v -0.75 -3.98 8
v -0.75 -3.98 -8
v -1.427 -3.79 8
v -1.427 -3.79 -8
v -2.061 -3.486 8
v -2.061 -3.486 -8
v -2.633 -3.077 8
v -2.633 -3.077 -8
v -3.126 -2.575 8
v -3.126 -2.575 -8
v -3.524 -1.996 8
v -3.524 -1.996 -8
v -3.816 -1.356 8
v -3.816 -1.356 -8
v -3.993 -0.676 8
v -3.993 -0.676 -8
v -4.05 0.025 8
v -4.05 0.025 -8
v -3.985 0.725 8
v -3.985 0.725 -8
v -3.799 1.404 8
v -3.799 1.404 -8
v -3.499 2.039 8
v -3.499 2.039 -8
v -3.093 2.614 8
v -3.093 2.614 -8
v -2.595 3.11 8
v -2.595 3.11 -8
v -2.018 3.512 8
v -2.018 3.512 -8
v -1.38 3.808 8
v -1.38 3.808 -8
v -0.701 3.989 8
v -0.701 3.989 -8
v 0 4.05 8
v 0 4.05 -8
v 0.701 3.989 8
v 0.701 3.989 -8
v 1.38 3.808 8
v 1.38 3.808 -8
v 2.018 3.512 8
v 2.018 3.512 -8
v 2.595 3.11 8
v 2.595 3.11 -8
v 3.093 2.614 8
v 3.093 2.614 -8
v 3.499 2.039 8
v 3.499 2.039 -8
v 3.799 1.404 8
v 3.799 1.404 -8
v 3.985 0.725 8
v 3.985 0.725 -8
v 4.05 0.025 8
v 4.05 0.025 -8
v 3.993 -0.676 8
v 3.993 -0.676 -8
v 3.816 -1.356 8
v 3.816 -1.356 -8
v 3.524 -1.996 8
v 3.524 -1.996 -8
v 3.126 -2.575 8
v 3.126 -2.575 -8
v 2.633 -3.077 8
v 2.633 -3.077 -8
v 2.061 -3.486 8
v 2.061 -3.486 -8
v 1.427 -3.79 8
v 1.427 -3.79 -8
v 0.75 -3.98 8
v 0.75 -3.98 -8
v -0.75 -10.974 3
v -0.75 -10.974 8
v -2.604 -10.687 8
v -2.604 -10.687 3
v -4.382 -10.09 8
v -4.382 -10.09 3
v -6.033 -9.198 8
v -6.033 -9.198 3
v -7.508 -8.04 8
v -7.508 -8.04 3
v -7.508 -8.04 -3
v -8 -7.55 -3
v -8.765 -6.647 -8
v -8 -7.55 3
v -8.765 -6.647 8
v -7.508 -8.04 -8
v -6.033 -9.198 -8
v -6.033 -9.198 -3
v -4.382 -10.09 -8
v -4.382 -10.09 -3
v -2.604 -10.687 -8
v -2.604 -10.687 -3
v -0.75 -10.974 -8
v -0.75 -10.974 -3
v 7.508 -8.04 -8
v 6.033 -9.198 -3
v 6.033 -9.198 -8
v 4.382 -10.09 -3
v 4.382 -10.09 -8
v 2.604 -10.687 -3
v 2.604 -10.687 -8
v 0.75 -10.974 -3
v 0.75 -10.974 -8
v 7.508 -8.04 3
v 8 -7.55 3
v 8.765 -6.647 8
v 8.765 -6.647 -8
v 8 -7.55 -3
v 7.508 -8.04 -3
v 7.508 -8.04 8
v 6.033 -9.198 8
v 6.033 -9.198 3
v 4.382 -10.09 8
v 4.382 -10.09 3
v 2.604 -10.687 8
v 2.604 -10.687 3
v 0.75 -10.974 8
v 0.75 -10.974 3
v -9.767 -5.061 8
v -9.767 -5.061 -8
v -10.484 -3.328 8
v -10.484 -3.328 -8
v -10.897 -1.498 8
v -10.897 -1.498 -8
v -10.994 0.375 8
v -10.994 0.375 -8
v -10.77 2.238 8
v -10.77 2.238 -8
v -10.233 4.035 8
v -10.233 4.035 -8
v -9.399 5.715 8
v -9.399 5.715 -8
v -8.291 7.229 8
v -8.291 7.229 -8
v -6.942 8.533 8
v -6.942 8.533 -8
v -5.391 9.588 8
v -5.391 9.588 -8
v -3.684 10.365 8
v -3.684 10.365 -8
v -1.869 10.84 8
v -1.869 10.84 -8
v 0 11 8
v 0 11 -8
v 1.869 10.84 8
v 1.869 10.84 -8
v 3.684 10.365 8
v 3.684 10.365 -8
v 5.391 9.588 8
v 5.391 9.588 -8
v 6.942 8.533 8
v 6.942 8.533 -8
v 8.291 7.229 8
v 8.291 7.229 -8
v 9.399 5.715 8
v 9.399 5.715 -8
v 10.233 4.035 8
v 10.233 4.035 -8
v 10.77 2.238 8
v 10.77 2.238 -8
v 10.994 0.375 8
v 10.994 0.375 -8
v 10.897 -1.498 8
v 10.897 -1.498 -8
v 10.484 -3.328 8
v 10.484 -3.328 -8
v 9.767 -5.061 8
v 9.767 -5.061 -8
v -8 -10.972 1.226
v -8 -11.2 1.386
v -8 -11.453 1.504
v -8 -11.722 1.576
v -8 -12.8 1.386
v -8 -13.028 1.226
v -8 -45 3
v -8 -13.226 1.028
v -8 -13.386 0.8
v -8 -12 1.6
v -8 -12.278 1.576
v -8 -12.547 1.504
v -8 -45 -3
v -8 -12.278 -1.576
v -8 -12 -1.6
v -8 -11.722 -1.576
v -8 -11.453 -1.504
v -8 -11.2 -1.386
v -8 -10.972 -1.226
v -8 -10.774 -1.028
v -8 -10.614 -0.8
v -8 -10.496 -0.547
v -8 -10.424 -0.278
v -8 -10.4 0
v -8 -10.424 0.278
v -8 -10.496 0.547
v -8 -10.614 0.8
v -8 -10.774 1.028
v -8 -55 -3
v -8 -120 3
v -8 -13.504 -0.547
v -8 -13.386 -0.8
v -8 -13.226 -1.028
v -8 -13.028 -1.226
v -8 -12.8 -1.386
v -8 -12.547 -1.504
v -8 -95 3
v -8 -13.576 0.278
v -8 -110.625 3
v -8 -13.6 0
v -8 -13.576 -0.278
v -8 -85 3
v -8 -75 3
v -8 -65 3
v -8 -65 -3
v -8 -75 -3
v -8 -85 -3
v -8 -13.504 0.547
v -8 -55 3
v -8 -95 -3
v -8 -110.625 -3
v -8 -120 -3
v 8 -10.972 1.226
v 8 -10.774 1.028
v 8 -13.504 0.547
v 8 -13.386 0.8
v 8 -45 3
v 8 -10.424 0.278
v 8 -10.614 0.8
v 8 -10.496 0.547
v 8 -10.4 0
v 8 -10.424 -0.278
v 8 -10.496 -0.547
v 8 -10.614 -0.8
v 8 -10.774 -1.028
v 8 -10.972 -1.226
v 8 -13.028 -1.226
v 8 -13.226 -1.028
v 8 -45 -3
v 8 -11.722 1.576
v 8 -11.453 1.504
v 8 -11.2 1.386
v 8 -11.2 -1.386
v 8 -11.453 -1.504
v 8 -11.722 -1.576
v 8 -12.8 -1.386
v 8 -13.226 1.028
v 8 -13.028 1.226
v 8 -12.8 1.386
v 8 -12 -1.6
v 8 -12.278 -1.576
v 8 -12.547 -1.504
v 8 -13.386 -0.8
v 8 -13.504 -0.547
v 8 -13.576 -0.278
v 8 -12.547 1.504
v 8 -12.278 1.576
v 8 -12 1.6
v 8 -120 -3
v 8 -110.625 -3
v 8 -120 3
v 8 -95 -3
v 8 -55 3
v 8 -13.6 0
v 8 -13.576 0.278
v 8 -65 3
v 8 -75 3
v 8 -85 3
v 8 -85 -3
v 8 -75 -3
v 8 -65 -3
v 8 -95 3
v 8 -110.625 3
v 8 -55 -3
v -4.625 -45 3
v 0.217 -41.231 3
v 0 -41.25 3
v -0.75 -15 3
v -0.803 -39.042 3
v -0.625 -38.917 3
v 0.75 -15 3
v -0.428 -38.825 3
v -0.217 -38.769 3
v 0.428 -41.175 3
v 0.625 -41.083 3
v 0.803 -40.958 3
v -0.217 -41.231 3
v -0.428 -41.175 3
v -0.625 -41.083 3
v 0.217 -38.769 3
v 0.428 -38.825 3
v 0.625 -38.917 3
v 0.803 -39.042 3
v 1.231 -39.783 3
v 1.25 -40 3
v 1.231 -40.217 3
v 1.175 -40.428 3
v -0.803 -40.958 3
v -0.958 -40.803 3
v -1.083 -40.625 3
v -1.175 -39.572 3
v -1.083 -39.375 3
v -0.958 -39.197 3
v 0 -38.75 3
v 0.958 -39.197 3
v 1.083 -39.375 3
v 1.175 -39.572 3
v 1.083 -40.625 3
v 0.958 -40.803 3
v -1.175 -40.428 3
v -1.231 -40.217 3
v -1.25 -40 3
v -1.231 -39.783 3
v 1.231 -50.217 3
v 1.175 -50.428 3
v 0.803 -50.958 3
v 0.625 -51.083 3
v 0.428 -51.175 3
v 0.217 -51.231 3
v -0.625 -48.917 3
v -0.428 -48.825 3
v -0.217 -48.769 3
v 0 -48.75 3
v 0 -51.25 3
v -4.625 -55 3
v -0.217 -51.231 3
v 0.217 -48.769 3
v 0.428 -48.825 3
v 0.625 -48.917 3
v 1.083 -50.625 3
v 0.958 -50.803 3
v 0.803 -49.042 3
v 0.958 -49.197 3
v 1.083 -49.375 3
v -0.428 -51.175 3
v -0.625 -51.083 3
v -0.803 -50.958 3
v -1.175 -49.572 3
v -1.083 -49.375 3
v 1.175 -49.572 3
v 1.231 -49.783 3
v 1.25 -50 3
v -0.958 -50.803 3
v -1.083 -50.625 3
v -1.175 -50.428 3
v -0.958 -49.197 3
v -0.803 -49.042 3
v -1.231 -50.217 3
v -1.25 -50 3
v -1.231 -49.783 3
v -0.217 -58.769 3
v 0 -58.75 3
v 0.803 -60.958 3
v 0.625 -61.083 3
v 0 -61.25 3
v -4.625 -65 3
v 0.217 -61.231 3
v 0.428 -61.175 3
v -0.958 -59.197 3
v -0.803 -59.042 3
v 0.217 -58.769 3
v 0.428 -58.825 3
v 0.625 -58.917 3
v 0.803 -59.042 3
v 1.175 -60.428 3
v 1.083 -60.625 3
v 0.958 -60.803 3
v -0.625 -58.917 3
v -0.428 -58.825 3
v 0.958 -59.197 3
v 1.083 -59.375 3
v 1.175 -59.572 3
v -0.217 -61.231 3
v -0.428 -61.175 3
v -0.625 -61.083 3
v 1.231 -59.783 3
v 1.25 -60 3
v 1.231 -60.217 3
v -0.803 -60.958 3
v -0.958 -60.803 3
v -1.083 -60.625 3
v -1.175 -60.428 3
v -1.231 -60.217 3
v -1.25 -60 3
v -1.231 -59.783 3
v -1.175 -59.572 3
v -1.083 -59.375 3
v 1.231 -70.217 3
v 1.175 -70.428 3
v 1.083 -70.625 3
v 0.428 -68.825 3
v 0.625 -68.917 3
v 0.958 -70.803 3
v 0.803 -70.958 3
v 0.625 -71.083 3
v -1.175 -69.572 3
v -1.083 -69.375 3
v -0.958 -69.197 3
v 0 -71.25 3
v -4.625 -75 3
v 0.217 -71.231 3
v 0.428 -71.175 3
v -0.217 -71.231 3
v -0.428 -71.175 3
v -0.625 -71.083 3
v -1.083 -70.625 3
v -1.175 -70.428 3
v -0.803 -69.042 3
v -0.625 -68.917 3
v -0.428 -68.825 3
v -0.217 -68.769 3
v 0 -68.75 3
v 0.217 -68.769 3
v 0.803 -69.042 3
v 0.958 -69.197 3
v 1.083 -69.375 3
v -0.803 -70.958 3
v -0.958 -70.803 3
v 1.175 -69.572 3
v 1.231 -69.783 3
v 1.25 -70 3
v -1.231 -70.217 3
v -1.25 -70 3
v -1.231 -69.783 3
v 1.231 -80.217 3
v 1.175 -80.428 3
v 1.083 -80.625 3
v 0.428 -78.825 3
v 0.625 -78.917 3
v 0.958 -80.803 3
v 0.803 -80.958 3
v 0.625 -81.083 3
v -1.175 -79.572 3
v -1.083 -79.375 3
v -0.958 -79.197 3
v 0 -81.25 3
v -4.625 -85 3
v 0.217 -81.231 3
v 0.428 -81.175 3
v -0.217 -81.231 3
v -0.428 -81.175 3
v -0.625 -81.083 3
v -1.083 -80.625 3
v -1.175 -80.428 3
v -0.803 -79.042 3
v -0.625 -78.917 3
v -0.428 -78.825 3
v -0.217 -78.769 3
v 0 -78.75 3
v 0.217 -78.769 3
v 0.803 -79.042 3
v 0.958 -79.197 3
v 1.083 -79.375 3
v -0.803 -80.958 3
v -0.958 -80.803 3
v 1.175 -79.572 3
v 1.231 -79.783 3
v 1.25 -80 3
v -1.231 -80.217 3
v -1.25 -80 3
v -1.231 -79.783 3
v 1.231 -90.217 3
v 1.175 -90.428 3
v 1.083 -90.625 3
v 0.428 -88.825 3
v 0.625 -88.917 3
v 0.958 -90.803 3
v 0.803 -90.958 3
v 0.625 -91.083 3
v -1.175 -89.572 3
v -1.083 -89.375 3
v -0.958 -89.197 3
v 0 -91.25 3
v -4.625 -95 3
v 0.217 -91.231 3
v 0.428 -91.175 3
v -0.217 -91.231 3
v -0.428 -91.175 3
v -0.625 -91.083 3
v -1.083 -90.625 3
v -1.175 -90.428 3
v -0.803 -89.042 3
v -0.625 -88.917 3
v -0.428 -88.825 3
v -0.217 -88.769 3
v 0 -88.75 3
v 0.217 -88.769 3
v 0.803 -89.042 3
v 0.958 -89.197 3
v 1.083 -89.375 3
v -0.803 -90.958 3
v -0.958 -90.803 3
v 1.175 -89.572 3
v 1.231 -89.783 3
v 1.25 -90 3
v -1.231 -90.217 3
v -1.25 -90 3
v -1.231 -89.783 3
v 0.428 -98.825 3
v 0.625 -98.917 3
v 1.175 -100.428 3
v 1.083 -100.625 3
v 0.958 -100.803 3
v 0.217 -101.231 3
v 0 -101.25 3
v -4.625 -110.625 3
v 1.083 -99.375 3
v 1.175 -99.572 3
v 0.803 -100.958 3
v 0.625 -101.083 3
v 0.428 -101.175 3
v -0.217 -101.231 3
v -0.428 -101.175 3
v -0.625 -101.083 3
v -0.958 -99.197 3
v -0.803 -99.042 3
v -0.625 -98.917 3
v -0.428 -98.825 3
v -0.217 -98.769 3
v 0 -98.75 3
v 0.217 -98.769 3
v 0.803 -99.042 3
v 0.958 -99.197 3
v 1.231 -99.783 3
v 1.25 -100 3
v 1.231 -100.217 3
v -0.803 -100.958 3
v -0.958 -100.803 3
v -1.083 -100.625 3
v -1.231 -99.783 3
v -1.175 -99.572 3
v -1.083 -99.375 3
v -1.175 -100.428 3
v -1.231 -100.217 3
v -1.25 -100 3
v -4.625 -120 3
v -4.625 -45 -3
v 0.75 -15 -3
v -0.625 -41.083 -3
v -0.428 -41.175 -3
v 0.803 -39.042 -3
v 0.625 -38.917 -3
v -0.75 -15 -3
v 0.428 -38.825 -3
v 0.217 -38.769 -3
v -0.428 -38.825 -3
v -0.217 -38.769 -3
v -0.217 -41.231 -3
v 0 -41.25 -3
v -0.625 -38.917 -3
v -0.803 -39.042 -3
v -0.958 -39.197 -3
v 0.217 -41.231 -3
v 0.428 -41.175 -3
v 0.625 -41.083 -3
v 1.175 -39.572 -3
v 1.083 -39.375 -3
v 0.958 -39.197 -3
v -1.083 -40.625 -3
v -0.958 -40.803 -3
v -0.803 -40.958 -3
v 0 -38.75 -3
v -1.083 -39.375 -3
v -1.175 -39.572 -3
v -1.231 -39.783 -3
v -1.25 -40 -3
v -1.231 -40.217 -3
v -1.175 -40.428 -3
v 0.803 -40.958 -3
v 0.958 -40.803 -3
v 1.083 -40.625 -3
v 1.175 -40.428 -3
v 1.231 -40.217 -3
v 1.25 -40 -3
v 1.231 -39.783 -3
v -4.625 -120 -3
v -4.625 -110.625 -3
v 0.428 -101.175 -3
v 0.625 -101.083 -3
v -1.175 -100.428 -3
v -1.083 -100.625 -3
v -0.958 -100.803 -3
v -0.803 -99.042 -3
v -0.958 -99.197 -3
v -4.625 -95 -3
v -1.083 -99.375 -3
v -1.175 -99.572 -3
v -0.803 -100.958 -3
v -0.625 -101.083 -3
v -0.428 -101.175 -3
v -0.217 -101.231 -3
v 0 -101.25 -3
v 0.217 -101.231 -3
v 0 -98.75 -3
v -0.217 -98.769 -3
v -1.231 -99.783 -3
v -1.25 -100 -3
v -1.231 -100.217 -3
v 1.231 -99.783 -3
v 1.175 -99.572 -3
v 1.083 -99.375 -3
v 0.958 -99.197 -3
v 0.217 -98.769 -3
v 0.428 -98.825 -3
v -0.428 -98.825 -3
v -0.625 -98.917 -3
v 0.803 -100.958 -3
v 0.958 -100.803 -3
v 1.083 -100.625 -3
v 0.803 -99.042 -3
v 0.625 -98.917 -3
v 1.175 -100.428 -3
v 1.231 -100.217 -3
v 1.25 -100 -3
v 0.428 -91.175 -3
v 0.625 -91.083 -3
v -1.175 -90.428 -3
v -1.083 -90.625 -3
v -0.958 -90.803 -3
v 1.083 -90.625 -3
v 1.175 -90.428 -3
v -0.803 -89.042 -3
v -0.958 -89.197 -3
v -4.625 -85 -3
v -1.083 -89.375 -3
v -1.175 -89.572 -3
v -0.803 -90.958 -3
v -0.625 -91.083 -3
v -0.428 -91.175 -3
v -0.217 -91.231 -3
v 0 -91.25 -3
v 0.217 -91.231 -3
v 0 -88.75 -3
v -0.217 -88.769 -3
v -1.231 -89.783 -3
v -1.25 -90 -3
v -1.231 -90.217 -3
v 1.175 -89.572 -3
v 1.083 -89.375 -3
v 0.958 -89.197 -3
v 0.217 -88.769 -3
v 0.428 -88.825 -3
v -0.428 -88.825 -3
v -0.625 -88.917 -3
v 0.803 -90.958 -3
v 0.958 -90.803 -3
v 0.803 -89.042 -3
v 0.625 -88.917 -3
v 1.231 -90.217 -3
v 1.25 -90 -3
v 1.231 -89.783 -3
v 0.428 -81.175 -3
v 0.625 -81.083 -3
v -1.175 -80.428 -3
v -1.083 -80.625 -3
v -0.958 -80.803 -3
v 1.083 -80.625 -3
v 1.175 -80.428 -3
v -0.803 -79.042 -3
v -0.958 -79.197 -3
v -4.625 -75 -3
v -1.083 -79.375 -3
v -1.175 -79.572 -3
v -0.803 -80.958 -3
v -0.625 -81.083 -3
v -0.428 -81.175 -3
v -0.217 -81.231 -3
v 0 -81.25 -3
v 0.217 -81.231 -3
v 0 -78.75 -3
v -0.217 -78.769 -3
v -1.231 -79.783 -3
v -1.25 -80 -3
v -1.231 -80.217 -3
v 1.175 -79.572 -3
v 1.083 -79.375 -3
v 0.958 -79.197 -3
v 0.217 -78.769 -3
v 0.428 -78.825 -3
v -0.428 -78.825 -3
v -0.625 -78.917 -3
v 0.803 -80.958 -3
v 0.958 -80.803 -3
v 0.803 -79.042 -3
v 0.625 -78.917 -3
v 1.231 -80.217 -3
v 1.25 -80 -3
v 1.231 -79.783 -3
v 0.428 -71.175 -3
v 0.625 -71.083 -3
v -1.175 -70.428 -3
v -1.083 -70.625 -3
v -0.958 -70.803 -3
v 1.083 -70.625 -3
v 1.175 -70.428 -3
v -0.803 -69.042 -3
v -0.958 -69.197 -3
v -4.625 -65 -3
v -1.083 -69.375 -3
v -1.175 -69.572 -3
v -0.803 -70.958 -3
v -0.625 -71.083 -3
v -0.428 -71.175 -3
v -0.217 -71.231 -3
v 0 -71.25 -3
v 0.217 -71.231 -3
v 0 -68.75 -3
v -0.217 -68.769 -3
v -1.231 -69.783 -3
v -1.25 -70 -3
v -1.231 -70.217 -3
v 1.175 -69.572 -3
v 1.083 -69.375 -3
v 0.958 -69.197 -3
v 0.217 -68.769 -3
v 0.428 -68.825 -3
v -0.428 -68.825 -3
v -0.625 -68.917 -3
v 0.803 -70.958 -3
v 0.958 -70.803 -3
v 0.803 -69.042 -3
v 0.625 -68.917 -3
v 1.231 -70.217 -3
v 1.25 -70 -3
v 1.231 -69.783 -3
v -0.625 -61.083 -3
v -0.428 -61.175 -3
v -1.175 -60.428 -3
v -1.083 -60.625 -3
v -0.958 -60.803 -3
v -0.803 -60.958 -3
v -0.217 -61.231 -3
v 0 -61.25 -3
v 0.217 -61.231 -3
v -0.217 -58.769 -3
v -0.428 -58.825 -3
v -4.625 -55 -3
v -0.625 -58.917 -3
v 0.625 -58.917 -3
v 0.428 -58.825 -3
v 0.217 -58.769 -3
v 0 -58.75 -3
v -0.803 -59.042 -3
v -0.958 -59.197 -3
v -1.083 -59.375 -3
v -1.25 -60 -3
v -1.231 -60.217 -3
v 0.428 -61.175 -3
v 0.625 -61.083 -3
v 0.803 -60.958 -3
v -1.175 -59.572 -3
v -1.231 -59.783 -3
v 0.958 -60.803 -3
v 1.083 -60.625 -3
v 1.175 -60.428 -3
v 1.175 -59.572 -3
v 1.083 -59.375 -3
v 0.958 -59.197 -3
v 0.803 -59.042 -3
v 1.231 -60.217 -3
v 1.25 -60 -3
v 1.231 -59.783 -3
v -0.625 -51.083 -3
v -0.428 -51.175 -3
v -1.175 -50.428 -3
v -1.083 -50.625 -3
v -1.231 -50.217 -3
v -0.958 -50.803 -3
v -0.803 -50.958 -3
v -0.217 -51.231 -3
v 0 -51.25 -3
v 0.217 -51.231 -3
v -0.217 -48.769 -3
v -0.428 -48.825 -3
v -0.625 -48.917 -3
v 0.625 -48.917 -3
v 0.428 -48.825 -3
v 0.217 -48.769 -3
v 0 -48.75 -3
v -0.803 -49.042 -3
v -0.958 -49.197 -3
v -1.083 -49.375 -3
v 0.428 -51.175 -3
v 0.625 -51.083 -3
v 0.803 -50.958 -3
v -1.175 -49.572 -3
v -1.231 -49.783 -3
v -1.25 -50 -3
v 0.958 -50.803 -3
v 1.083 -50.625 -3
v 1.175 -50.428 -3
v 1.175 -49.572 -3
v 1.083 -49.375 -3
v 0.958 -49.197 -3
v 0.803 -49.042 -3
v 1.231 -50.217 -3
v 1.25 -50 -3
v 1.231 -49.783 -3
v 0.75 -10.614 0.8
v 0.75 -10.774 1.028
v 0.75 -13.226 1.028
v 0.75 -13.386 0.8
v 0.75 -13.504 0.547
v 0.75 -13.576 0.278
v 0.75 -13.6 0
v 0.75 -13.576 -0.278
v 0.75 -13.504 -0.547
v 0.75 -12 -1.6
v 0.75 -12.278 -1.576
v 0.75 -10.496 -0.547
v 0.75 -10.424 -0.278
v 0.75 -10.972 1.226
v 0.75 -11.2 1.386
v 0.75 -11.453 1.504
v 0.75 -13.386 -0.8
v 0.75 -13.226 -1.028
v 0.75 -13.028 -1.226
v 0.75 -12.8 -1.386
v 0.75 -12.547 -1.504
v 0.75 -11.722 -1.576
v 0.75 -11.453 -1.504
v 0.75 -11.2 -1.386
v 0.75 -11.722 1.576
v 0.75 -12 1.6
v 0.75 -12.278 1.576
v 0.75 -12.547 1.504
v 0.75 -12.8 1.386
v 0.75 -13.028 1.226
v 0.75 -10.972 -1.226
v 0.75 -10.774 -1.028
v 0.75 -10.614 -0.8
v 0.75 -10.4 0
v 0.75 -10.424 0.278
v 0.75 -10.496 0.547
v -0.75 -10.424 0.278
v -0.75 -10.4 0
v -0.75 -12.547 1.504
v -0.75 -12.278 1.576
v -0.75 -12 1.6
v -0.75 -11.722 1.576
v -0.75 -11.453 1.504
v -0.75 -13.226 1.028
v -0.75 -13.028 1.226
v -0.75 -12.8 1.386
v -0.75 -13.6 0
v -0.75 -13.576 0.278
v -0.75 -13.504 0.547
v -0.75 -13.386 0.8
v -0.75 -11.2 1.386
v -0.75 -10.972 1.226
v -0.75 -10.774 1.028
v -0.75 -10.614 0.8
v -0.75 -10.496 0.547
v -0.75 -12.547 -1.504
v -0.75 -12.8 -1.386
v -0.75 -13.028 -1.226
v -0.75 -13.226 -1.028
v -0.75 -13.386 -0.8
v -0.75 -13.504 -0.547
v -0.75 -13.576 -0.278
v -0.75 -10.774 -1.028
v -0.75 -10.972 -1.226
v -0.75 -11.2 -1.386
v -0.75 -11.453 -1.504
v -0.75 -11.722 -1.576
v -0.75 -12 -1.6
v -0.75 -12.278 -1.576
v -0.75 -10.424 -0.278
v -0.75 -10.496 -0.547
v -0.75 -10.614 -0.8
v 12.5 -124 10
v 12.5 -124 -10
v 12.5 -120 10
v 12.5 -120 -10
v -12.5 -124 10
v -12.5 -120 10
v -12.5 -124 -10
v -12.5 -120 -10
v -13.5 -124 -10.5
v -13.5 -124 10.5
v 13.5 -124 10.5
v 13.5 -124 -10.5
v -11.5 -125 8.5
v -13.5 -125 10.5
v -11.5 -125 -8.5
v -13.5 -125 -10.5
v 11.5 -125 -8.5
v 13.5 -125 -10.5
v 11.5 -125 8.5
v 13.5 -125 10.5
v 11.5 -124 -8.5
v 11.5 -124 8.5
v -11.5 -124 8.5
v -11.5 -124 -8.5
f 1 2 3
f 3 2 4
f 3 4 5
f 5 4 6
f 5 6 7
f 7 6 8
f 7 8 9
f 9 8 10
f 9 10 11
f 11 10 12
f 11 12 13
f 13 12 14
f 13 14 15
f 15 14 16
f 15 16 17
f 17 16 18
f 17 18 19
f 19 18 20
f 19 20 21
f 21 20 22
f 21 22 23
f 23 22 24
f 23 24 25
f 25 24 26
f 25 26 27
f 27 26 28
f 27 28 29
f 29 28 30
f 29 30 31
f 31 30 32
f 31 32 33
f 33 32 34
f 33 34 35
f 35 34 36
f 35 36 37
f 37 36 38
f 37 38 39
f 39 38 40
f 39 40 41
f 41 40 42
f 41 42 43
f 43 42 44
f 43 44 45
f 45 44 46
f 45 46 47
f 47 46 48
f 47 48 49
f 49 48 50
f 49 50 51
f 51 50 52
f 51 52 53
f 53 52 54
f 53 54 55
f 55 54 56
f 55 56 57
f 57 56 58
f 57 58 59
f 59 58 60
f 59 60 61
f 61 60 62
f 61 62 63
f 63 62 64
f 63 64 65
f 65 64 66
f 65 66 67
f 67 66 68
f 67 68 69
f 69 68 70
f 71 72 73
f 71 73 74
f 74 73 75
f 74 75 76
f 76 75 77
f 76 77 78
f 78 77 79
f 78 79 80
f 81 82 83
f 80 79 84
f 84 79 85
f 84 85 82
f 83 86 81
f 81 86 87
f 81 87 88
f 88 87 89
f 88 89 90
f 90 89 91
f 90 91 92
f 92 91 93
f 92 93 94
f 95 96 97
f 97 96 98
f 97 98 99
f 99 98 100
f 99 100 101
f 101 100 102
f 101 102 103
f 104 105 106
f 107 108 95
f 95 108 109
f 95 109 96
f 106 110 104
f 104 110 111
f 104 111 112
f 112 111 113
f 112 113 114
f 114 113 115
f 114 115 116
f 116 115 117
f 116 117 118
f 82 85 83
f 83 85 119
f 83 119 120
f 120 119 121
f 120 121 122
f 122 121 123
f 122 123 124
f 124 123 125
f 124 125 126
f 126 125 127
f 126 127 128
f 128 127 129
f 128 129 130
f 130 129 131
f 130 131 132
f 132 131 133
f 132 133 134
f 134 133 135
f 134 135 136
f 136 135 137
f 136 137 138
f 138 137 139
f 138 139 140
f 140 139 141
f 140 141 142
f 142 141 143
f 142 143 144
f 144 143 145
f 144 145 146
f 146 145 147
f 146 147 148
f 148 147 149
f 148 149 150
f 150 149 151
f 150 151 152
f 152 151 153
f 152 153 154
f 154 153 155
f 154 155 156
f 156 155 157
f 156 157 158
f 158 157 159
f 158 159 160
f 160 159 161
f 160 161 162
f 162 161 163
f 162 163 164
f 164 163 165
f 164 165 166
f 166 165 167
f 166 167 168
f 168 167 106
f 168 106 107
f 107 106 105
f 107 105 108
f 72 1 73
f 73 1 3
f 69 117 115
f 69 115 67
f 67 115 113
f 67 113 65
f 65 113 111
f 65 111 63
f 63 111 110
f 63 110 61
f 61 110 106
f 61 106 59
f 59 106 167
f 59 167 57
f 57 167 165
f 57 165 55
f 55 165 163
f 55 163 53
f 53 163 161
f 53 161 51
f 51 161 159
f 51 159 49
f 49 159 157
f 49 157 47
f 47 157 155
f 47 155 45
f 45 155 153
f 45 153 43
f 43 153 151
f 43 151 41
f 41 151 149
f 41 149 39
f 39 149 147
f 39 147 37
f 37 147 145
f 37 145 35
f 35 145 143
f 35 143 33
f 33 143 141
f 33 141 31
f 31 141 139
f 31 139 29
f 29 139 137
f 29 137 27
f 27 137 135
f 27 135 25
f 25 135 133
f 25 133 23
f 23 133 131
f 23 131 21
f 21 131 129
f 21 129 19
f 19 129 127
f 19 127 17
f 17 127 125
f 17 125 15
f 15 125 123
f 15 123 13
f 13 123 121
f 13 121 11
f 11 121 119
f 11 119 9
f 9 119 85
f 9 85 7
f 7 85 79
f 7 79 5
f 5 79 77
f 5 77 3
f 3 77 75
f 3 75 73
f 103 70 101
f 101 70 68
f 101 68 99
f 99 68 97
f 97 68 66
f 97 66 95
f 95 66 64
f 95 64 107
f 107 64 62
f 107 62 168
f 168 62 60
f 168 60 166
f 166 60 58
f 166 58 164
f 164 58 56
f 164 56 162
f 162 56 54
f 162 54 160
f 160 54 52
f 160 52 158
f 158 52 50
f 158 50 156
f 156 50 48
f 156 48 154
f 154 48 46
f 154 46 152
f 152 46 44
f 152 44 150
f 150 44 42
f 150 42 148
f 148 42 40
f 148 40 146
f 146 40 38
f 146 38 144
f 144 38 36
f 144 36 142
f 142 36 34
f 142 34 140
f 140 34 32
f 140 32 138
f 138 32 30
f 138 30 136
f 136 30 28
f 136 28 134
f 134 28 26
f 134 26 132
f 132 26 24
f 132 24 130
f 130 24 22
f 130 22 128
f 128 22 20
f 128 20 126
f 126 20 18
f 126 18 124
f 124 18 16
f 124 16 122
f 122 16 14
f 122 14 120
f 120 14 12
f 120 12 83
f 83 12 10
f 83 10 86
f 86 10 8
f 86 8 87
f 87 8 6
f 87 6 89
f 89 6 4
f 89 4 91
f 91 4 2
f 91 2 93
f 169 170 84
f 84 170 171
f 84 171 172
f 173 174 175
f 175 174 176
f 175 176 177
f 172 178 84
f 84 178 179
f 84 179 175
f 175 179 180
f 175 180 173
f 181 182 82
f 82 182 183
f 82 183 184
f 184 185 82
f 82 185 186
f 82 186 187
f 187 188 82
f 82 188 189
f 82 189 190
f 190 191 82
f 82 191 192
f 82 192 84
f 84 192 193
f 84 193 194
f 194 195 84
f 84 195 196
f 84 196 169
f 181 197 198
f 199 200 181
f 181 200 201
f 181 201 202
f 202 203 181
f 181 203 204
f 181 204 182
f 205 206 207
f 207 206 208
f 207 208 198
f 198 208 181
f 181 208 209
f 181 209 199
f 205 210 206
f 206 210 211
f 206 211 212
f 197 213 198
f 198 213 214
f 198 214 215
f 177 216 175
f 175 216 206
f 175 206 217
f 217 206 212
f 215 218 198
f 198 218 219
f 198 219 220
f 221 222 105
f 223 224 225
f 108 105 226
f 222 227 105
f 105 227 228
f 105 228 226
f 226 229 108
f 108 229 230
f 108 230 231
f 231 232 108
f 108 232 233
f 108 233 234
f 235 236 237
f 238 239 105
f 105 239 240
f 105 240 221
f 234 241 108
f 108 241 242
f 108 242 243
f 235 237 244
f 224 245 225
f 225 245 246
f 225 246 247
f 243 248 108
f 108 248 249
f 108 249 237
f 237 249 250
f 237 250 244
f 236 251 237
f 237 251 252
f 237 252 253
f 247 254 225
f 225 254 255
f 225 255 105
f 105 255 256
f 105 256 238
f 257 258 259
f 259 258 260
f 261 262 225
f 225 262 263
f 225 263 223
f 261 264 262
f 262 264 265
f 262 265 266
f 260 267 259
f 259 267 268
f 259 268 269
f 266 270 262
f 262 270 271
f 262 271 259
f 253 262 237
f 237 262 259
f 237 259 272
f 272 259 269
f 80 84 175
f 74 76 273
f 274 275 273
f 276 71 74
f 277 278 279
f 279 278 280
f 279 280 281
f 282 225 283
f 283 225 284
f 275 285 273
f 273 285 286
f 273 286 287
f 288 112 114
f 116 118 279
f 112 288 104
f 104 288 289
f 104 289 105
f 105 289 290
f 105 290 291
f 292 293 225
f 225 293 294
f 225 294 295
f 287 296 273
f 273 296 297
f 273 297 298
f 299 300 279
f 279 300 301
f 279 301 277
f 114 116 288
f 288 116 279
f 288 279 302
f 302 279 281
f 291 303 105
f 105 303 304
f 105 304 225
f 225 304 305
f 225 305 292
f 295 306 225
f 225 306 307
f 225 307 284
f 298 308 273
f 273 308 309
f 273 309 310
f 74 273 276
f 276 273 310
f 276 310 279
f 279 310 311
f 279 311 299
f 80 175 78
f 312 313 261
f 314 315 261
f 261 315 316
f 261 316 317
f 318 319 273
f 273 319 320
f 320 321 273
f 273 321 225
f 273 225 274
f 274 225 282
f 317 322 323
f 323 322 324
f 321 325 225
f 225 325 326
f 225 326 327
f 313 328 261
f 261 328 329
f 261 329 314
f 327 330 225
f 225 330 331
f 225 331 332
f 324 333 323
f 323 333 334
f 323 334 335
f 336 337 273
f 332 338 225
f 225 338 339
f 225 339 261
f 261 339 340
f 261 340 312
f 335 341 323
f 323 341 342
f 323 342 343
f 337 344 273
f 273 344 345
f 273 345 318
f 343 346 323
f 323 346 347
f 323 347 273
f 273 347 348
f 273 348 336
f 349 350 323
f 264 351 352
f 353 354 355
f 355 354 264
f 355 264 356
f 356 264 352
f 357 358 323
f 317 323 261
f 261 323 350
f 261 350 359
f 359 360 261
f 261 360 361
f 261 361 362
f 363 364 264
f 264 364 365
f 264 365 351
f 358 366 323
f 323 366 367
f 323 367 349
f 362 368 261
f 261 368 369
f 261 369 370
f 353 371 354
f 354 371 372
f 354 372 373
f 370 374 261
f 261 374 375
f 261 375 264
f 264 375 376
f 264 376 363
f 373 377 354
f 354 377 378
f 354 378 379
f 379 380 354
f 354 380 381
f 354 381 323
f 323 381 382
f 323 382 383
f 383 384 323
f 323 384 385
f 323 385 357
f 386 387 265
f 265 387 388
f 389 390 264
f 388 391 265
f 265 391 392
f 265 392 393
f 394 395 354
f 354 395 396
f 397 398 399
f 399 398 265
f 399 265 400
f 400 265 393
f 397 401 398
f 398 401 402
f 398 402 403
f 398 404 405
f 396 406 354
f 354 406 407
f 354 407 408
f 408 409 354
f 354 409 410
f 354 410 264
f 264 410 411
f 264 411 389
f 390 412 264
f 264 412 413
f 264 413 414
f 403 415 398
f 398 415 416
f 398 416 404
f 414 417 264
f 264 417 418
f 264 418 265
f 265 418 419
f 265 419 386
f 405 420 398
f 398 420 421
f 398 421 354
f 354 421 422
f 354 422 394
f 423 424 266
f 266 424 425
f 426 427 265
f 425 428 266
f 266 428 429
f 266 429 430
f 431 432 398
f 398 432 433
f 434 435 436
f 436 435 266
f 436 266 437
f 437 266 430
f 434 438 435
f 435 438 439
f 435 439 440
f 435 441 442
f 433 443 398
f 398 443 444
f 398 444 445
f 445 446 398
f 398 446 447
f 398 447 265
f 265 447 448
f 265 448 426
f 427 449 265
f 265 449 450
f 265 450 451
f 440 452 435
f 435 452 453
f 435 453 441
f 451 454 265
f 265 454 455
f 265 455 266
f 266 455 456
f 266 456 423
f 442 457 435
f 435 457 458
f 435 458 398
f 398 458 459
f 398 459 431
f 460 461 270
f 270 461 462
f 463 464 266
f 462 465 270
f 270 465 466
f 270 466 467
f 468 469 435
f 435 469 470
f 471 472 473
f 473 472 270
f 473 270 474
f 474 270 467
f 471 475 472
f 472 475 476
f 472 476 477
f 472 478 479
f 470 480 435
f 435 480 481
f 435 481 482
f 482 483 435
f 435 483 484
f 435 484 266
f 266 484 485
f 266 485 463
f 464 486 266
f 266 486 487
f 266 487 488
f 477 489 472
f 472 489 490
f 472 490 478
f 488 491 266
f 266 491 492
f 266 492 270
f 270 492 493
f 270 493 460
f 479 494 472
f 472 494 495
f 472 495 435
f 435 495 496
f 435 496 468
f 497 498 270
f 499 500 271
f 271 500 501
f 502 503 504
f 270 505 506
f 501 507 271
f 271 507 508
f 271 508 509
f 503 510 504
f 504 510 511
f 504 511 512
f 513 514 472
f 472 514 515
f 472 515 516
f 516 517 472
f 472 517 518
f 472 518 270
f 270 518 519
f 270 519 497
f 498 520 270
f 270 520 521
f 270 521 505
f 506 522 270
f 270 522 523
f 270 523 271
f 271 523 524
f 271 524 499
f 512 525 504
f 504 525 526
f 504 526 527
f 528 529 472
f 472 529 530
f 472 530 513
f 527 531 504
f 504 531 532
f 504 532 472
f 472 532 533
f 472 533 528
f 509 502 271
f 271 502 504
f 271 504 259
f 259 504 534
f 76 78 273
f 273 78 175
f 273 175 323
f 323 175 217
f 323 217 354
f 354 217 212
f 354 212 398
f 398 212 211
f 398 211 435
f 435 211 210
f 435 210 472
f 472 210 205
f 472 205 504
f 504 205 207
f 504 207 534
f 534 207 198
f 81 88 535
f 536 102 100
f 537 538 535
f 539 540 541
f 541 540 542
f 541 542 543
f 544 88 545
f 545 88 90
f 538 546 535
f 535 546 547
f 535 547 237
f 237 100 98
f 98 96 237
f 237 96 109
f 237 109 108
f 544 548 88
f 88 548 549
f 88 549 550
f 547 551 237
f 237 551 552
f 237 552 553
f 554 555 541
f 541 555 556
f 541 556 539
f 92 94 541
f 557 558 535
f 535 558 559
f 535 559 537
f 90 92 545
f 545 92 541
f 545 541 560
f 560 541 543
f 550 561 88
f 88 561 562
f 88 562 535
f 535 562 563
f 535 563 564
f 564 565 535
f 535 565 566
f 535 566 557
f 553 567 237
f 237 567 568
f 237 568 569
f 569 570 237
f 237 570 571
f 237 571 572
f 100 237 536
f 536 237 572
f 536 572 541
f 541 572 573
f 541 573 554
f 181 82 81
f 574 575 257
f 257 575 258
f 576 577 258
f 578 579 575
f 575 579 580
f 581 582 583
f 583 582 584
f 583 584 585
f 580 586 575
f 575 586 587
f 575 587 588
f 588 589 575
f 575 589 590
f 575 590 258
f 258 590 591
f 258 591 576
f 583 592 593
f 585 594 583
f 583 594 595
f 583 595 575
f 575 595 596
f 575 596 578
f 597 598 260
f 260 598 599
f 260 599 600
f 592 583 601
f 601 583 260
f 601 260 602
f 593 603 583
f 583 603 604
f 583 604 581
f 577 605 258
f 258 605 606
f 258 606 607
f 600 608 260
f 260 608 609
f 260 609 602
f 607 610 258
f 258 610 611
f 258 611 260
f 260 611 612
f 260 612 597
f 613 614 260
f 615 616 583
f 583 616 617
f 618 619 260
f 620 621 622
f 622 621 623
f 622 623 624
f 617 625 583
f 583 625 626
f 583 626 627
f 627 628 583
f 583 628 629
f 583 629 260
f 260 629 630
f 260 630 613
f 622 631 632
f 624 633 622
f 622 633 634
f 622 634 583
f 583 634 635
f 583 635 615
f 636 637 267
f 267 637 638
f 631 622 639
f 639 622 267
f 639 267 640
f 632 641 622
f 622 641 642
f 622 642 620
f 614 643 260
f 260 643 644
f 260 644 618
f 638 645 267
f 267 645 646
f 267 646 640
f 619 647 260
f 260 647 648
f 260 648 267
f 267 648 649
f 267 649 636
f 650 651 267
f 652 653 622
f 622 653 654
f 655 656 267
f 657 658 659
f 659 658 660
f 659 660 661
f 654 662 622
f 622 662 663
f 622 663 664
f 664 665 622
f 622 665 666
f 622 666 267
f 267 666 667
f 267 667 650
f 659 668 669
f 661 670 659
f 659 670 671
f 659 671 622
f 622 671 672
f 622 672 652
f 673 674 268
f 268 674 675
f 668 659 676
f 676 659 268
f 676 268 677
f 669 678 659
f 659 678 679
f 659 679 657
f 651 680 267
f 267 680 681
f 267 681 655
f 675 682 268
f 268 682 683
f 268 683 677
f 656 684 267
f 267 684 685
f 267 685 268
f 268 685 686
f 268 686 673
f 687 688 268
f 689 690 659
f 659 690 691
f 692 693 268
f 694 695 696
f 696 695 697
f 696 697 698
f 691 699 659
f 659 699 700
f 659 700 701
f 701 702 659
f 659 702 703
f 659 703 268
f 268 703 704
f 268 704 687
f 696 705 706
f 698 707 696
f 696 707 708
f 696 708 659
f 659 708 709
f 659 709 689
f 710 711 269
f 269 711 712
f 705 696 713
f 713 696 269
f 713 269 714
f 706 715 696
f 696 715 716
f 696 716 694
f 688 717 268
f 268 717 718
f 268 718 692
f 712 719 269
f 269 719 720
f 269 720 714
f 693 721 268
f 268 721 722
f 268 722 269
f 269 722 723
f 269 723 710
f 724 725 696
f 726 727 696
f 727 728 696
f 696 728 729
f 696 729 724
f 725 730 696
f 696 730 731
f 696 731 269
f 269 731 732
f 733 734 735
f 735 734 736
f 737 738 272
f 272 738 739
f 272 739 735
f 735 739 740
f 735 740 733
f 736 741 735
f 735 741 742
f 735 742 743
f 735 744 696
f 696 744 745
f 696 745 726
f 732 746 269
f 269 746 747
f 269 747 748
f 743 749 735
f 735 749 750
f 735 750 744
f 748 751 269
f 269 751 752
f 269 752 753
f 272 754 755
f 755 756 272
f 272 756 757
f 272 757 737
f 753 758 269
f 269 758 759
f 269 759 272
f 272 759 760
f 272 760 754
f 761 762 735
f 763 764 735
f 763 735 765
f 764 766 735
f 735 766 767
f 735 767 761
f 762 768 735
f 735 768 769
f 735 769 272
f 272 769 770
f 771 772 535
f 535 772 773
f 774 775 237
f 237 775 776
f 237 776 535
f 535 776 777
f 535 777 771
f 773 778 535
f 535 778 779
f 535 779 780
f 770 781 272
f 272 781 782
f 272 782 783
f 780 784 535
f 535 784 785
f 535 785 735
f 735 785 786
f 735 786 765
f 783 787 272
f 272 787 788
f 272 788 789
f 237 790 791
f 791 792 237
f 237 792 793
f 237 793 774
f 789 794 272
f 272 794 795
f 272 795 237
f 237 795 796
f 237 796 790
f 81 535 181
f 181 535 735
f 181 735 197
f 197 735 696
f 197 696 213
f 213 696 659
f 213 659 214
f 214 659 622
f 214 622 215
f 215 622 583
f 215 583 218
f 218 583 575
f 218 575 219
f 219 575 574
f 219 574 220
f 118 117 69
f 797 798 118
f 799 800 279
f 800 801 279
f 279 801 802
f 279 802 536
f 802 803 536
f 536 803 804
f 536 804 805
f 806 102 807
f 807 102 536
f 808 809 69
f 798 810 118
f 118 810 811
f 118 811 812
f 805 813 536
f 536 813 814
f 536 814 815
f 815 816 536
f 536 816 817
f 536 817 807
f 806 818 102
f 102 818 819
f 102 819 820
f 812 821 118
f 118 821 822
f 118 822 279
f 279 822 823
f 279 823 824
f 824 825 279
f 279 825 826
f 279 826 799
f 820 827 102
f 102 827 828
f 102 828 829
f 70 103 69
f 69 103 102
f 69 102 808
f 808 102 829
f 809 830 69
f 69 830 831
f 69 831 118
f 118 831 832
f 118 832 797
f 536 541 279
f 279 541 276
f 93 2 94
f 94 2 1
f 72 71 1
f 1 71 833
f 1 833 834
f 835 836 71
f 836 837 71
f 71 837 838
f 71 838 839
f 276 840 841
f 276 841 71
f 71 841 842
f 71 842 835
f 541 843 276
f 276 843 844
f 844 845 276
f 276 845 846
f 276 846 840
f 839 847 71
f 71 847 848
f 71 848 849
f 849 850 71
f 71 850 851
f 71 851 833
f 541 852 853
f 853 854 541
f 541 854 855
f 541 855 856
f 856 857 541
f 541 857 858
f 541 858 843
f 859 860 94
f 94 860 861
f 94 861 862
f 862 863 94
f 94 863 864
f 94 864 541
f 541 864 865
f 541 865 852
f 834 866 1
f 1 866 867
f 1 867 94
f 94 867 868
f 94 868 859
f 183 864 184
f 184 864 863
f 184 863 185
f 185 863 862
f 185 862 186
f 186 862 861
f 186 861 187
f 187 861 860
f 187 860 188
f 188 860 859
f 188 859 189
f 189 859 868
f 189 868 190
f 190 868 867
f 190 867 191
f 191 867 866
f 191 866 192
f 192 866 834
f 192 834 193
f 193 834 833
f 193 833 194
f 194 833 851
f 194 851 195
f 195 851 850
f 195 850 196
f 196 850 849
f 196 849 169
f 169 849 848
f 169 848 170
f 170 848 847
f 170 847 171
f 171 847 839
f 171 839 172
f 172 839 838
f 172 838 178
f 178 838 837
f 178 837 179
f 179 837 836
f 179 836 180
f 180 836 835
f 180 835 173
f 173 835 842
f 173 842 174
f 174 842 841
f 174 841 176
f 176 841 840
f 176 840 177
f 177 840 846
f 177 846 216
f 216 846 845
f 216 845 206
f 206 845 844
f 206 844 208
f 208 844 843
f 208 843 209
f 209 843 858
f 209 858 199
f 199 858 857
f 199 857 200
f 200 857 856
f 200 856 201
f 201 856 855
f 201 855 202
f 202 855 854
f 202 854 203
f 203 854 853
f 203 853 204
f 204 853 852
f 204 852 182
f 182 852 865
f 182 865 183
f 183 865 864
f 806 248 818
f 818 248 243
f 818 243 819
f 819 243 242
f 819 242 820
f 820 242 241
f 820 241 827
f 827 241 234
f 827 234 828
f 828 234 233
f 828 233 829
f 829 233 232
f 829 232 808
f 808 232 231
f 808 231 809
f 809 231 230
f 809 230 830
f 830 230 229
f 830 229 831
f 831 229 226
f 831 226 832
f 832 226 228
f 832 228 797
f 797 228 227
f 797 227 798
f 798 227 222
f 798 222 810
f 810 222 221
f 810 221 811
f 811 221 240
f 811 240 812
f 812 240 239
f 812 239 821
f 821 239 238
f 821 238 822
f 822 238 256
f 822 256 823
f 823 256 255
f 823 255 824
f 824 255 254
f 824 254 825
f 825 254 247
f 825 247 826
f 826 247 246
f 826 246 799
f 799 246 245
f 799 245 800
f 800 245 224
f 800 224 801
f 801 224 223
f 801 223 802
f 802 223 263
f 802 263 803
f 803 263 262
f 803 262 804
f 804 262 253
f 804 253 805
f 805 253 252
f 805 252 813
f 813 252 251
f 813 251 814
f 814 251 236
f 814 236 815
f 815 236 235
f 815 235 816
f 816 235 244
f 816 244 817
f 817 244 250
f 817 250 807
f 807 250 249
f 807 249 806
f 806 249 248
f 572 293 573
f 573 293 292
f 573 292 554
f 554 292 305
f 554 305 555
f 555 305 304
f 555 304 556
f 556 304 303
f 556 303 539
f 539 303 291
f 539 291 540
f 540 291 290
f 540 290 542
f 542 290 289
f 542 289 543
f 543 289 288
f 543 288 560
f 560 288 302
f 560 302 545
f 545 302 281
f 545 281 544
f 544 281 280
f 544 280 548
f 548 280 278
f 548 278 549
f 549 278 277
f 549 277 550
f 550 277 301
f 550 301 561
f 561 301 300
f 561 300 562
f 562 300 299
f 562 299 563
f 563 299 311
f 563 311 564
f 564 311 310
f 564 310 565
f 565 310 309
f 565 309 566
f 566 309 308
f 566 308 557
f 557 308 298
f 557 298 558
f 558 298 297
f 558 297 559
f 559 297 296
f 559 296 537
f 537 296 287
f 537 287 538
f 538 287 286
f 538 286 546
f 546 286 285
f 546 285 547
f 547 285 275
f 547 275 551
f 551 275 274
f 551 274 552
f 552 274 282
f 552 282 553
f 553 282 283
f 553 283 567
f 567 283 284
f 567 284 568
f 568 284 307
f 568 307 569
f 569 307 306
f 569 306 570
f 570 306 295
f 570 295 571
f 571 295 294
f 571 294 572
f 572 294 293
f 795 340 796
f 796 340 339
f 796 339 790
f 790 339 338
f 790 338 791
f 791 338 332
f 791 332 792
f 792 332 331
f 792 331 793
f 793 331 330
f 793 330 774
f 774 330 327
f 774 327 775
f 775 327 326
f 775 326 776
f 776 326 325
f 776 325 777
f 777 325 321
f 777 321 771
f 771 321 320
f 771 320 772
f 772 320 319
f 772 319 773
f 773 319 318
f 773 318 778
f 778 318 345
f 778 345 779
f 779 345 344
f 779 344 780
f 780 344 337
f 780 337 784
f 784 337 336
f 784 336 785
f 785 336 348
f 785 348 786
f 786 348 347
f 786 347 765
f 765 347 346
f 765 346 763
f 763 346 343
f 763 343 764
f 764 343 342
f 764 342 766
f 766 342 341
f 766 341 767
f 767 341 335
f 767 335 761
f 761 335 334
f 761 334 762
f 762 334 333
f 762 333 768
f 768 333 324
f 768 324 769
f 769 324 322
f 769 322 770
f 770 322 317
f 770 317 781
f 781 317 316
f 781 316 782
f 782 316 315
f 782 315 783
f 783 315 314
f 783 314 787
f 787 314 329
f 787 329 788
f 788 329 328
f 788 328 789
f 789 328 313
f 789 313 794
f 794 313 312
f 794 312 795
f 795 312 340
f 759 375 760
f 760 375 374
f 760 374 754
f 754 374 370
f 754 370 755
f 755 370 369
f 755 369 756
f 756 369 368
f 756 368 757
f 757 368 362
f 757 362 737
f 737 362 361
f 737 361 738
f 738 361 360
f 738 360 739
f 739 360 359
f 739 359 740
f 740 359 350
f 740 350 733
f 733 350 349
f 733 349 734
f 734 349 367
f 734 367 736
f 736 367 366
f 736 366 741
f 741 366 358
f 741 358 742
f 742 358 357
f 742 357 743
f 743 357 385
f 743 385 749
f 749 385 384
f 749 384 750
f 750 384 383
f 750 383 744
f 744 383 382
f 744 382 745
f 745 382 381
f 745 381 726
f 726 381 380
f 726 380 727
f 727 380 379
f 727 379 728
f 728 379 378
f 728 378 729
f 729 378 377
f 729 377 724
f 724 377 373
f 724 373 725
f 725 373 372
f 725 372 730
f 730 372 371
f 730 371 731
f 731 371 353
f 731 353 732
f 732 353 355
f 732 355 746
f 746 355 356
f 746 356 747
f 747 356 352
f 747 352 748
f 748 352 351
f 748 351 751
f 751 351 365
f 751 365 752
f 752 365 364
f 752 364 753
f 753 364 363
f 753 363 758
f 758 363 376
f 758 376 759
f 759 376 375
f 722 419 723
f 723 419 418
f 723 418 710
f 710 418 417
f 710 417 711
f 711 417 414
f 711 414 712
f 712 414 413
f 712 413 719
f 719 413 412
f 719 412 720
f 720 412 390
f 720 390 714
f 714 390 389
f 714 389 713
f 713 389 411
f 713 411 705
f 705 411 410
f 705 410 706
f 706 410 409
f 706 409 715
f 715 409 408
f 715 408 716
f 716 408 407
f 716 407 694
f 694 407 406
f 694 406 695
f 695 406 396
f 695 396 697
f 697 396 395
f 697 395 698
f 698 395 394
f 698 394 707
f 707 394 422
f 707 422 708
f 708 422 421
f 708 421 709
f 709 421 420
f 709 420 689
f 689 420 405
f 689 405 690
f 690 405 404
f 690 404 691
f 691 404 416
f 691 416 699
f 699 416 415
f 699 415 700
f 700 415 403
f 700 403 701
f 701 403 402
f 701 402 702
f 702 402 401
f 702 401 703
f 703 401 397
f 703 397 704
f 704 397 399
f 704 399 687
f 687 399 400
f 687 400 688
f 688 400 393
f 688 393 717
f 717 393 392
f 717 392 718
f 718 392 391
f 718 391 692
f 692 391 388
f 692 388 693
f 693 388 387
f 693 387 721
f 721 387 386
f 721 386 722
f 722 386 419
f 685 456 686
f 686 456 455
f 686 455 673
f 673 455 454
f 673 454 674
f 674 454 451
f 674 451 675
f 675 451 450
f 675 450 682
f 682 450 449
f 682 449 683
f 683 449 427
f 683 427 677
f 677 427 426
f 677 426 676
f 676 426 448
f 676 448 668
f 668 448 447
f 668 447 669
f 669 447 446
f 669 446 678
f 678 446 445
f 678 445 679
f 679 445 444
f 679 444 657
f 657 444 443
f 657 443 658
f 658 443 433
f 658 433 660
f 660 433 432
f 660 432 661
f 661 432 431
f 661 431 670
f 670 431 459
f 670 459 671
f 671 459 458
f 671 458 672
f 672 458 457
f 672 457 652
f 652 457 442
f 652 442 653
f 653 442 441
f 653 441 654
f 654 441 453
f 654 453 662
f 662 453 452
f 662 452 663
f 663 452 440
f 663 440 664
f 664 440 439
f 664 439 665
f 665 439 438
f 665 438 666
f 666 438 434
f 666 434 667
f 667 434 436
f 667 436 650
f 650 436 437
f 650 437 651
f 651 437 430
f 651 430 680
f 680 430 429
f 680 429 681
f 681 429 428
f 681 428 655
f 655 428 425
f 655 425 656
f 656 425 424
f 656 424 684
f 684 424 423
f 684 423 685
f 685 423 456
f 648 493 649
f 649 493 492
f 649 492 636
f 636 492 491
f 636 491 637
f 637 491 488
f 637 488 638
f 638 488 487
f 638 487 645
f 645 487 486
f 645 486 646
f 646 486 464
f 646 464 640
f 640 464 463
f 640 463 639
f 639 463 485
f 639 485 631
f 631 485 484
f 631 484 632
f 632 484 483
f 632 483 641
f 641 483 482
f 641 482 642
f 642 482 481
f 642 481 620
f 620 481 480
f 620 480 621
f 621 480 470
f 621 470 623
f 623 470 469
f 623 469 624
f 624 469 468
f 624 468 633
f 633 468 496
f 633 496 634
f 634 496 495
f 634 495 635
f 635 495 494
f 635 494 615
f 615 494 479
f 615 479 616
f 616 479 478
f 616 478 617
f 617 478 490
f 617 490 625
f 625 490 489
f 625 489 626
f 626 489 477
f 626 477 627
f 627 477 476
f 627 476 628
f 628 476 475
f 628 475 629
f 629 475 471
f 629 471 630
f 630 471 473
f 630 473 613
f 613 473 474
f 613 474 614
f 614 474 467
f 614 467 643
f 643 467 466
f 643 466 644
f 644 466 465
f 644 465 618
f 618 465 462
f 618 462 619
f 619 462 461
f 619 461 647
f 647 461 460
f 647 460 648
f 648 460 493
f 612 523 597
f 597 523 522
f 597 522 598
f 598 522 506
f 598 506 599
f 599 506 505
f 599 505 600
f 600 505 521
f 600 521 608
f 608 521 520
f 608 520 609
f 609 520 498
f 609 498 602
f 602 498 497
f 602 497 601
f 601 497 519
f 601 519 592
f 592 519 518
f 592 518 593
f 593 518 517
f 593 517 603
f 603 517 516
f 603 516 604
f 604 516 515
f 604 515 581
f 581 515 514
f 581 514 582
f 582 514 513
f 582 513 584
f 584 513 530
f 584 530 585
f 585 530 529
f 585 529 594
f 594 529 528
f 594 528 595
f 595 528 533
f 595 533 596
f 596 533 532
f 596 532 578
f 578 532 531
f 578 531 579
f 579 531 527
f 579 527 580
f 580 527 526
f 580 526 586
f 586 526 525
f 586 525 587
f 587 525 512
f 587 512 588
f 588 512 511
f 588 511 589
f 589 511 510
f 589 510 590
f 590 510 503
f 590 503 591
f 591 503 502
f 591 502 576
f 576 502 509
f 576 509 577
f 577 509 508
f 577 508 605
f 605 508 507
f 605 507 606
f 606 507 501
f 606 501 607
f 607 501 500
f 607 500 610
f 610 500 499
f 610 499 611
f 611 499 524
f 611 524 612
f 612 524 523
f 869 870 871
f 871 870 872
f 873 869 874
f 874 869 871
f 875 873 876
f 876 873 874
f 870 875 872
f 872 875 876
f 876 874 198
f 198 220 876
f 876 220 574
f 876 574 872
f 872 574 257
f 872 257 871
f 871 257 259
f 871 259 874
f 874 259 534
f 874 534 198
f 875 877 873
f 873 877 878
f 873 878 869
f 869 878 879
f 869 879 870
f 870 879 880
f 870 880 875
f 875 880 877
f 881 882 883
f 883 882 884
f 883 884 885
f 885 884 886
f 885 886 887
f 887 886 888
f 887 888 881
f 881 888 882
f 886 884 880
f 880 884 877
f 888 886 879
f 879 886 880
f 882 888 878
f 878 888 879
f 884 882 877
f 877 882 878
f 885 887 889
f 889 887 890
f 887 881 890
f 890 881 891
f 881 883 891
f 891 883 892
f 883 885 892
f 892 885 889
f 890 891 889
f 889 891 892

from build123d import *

# Parameters (mm, degrees)
SKETCH_5_R               = 11
SKETCH_5_R_2             = 4.05
EXTRUDE_2_DEPTH          = 8
EXTRUDE_4_DEPTH          = 3
CUT_EXTRUDE_2_DEPTH      = 121.768373343
CUT_EXTRUDE_2_DEPTH_BACK = 121.768373343
SKETCH_6_W               = 1.5
SKETCH_6_H               = 12
CUT_EXTRUDE_3_DEPTH      = 121.768373343
CUT_EXTRUDE_3_DEPTH_BACK = 121.768373343
SKETCH_7_R               = 1.6
SKETCH_8_R               = 1.25
CUT_EXTRUDE_4_DEPTH      = 121.768373343
PATTERN_LINEAR_1_COUNT   = 7
PATTERN_LINEAR_1_PITCH   = 10
SKETCH_9_W               = 25
SKETCH_9_H               = 20
EXTRUDE_5_DEPTH          = 4
SKETCH_10_W              = 27
SKETCH_10_H              = 21
SKETCH_10_W_2            = 23
SKETCH_10_H_2            = 17
EXTRUDE_7_DEPTH          = 1


with BuildPart() as part:
    # 草图5 → 凸台-拉伸2 (new, symmetric)
    with BuildSketch(Plane.XY):
        Circle(SKETCH_5_R)
        Circle(SKETCH_5_R_2, mode=Mode.SUBTRACT)
    extrude(amount=EXTRUDE_2_DEPTH, both=True)

    # 草图5<5> → 凸台-拉伸4 (add, symmetric)
    with BuildSketch(Plane.XY):
        with BuildLine():
            Line((-8, -7.549834435), (-8, -120))
            Line((-8, -120), (8, -120))
            Line((8, -120), (8, -7.549834435))
            ThreePointArc((8, -7.549834435), (0, -11), (-8, -7.549834435))
        make_face()
    extrude(amount=EXTRUDE_4_DEPTH, both=True)

    # 草图6 → 切除-拉伸2 (cut, two sides: drawn at the far end of the back side and taken through both)
    with BuildSketch(Plane.XY.offset(-CUT_EXTRUDE_2_DEPTH_BACK)):
        with Locations((0, -9)):
            Rectangle(SKETCH_6_W, SKETCH_6_H)
    extrude(amount=CUT_EXTRUDE_2_DEPTH + CUT_EXTRUDE_2_DEPTH_BACK, mode=Mode.SUBTRACT)

    # 草图7 → 切除-拉伸3 (cut, two sides: drawn at the far end of the back side and taken through both)
    with BuildSketch(Plane(origin=(0, 0, 0), x_dir=(0, 0, -1), z_dir=(1, 0, 0)).offset(-CUT_EXTRUDE_3_DEPTH_BACK)):
        with Locations((0, -12)):
            Circle(SKETCH_7_R)
    extrude(amount=CUT_EXTRUDE_3_DEPTH + CUT_EXTRUDE_3_DEPTH_BACK, mode=Mode.SUBTRACT)

    # 草图8 → 切除-拉伸4 (cut, symmetric)
    with BuildSketch(Plane.XY):
        with Locations((0, -40)):
            Circle(SKETCH_8_R)
    cut_extrude_4 = extrude(amount=CUT_EXTRUDE_4_DEPTH, both=True, mode=Mode.SUBTRACT)

    # 阵列(线性)1: 切除-拉伸4 ×7
    with Locations(*[(0, -i * PATTERN_LINEAR_1_PITCH, 0) for i in range(1, PATTERN_LINEAR_1_COUNT)]):
        add(cut_extrude_4, mode=Mode.SUBTRACT)

    # 草图9 → 凸台-拉伸5 (add)
    with BuildSketch(Plane.XZ.offset(120)):
        Rectangle(SKETCH_9_W, SKETCH_9_H)
    extrude(amount=EXTRUDE_5_DEPTH)

    # 草图10 → 凸台-拉伸7 (add)
    with BuildSketch(Plane.XZ.offset(124)):
        Rectangle(SKETCH_10_W, SKETCH_10_H)
        Rectangle(SKETCH_10_W_2, SKETCH_10_H_2, mode=Mode.SUBTRACT)
    extrude(amount=EXTRUDE_7_DEPTH)


solid = part.part
